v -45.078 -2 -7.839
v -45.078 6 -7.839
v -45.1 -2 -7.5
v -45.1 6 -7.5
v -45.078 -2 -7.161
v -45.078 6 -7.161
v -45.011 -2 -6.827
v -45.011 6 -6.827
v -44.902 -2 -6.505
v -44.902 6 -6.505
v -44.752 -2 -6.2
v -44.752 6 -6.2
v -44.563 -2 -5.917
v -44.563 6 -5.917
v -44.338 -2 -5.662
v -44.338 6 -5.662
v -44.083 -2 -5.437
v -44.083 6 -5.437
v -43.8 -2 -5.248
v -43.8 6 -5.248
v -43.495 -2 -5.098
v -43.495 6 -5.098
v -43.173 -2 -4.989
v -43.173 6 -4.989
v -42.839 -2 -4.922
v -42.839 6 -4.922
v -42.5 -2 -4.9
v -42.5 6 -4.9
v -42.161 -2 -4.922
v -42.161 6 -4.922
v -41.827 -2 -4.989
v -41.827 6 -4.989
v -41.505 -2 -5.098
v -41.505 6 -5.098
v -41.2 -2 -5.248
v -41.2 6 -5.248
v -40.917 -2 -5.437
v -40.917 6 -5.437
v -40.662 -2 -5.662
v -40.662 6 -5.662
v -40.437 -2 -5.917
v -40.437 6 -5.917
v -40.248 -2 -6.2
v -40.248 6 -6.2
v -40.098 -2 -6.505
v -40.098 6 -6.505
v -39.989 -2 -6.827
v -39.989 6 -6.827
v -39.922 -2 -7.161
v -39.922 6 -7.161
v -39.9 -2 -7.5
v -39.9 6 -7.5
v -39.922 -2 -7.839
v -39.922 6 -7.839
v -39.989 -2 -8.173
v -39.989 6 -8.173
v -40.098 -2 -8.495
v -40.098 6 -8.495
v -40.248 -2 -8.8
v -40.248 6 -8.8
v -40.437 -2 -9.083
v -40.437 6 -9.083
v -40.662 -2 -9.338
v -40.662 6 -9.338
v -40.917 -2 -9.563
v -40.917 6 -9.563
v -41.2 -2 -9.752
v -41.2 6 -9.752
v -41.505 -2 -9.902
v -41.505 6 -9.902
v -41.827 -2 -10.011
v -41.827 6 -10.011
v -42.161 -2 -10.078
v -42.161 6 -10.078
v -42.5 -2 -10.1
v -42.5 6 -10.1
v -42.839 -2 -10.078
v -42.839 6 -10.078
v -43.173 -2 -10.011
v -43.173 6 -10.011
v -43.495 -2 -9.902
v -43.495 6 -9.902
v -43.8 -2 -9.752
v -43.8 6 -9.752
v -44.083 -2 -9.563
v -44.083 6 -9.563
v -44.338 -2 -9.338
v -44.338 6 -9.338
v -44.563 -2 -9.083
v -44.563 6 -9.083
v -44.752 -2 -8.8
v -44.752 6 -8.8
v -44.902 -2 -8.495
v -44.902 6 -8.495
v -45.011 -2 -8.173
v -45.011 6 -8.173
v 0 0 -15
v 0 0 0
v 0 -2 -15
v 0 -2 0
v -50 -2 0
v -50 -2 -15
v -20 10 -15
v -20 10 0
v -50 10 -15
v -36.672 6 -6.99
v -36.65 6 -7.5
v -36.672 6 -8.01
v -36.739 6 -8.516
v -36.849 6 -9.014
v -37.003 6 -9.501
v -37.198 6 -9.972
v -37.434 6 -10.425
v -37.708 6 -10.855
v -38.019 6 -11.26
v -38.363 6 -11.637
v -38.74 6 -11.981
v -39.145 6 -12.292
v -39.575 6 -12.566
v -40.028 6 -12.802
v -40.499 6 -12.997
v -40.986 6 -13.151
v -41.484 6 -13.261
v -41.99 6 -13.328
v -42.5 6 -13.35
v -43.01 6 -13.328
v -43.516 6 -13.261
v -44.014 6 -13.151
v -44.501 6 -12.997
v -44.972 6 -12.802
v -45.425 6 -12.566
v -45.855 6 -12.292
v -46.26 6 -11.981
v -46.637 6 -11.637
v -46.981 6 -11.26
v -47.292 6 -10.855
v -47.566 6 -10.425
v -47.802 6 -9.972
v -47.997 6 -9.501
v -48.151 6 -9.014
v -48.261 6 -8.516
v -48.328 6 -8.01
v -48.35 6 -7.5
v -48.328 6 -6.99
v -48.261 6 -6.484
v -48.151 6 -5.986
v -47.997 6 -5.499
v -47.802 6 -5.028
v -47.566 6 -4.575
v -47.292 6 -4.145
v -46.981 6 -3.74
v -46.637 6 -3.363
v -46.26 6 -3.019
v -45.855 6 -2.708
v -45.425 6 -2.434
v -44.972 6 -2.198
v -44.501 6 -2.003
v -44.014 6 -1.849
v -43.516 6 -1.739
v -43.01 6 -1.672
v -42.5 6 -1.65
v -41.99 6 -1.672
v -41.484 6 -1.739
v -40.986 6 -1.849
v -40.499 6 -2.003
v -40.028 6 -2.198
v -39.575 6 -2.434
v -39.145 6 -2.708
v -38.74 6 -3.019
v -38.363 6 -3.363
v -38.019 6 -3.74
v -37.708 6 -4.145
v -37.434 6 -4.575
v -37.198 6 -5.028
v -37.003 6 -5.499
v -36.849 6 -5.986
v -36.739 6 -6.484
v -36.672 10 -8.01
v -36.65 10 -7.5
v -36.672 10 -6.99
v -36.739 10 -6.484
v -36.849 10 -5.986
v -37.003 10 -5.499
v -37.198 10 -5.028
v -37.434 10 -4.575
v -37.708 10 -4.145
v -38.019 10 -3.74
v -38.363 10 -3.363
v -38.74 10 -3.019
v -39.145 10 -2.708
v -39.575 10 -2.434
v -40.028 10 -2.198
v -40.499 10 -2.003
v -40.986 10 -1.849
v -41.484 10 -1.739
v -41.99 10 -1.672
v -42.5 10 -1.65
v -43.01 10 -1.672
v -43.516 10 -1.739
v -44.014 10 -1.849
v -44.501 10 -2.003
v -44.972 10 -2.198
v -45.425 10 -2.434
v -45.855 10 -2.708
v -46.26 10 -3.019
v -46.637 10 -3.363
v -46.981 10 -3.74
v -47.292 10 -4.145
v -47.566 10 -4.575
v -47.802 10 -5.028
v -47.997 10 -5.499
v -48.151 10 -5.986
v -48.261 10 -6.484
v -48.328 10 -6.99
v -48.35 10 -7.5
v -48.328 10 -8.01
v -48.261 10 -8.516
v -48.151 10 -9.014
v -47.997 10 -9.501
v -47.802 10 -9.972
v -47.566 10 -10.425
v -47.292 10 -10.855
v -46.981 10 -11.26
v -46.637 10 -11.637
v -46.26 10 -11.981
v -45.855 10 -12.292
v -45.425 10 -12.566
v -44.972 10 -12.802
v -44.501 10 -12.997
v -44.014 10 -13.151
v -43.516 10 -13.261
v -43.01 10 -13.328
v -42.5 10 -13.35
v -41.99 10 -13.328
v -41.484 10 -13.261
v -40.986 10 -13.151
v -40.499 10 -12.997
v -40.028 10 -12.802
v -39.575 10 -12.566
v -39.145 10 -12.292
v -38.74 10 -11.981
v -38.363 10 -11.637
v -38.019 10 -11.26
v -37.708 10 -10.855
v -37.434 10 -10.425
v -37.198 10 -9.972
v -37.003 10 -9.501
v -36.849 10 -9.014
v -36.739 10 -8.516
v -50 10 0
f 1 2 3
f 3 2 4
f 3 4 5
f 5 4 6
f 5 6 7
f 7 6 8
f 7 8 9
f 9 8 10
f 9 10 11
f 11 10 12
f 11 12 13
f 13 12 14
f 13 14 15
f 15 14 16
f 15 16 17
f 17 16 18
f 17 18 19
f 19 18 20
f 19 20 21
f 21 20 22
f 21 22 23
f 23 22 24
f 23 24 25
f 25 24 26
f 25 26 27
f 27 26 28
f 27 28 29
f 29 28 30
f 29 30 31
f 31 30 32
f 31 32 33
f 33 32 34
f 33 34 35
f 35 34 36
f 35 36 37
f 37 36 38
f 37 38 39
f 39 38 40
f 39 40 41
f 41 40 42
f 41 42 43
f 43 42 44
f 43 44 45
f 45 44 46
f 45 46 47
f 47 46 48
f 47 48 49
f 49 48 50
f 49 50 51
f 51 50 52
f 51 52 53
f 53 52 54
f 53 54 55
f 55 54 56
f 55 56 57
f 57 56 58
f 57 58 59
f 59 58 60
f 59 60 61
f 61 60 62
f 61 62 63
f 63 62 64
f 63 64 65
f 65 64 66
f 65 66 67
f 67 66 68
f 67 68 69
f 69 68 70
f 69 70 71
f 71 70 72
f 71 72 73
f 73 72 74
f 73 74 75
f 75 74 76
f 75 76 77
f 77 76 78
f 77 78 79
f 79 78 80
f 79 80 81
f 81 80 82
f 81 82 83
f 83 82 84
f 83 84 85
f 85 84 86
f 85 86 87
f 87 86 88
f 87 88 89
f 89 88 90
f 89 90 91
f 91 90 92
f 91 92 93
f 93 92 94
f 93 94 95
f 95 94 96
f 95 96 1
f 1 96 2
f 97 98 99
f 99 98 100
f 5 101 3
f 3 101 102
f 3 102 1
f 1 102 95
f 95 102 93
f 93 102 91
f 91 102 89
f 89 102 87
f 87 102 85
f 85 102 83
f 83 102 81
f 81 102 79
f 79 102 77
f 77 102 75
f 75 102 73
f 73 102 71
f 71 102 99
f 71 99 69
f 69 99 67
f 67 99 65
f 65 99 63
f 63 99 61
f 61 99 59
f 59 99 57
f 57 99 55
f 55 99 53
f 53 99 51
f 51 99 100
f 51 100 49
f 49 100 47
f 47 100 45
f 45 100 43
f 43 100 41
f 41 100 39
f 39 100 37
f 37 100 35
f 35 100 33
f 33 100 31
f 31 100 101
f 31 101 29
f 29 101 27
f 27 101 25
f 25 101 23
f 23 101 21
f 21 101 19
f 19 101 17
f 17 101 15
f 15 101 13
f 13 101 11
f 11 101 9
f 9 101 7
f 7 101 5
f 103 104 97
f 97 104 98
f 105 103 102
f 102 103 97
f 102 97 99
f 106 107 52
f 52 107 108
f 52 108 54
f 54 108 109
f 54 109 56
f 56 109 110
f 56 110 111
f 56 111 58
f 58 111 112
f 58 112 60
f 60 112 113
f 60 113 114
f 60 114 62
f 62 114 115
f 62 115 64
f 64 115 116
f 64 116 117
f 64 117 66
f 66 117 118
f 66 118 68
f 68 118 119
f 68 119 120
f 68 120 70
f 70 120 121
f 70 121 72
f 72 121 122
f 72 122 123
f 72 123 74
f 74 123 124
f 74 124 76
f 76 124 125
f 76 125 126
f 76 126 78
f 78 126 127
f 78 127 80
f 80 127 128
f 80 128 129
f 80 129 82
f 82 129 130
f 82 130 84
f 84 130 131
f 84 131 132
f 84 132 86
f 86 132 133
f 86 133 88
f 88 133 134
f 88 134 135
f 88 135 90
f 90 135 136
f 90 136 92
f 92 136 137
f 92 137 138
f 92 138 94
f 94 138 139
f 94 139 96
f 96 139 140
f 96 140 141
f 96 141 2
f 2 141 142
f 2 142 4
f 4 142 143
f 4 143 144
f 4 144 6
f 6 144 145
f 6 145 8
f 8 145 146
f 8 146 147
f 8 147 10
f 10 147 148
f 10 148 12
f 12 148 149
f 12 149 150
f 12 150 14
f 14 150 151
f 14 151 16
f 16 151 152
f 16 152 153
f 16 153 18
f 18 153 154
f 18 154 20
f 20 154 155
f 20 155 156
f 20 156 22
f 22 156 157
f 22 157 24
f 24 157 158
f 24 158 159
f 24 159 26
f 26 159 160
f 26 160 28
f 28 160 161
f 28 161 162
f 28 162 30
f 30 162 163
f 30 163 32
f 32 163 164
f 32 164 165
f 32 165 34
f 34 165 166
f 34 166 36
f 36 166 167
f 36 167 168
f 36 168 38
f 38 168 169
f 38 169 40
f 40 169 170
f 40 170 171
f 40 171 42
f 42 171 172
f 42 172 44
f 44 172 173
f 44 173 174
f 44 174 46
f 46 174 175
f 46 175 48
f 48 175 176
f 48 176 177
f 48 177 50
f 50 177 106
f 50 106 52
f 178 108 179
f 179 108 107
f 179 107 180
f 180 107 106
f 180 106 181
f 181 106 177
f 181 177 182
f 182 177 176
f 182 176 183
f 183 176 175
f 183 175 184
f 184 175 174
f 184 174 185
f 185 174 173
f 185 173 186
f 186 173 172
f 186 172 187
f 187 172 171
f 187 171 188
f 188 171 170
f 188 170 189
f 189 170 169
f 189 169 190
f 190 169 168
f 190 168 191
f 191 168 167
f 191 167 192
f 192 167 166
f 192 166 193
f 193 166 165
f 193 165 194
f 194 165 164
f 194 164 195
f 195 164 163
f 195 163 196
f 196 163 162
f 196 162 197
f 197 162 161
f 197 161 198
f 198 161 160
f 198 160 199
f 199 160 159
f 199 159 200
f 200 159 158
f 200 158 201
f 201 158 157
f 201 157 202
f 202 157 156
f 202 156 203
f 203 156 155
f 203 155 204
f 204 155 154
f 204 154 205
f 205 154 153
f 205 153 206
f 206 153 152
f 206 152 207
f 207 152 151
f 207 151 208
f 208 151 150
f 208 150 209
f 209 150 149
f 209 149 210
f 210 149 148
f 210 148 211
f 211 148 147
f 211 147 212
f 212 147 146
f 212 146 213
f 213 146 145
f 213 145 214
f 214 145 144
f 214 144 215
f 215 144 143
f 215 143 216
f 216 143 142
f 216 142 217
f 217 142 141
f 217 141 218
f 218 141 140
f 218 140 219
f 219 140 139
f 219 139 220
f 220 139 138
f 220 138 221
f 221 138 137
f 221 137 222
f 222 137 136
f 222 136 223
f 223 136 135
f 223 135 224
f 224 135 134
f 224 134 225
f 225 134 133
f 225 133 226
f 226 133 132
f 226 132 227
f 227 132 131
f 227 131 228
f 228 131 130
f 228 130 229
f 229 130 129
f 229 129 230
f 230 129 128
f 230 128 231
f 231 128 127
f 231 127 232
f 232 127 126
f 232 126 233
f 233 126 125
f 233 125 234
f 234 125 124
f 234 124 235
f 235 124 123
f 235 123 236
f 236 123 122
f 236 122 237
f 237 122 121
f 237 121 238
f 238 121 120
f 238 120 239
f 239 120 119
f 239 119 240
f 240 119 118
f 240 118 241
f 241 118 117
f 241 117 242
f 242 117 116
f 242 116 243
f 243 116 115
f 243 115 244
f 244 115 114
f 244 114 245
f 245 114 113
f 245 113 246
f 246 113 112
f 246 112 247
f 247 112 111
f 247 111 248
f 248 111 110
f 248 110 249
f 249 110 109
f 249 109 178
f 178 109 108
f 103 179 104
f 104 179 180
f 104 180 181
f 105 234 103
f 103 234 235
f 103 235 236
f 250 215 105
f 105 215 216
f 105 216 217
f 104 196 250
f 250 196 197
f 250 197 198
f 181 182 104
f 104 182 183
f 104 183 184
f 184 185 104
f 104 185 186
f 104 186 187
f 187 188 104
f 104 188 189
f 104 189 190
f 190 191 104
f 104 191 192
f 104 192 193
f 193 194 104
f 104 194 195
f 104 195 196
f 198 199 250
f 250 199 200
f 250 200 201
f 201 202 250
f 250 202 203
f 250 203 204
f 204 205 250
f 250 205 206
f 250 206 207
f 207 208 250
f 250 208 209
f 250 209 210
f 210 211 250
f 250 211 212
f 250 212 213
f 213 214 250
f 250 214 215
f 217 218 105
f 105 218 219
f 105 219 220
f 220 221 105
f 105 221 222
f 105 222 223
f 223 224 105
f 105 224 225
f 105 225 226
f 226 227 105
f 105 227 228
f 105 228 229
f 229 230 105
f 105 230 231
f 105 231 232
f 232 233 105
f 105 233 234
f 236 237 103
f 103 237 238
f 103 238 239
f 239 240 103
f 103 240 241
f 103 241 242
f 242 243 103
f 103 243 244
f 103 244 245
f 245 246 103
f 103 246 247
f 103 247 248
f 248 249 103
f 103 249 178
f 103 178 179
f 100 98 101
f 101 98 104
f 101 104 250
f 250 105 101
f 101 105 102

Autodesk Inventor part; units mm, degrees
ref_plane "YZ Plane" through (0, 0, 0) normal (1, 0, 0) x (0, 1, 0)
ref_plane "XZ Plane" through (0, 0, 0) normal (0, 1, 0) x (-1, 0, 0)
ref_plane "XY Plane" through (0, 0, 0) normal (0, 0, 1) x (1, 0, 0)
sketch "Boceto1" plane through (0, 0, 0) normal (0, 1, 0) x (-1, 0, 0)
  line L0 (0, 0) -> (50, 0)
  line L1 (50, 0) -> (50, -15)
  line L2 (50, -15) -> (0, -15)
  line L3 (0, -15) -> (0, 0)
  dimension "d0" = 50
  dimension "d1" = 15
extrude "Extrusión1" add sketch "Boceto1" along normal blind 10
sketch "Boceto2" plane through (0, 10, 0) normal (0, 1, 0) x (1, 0, 0)
  line L0 (-50, 15) -> (-50, 0) projected
  line L1 (-50, 0) -> (0, 0) projected
  point P0 (-42.5, 7.5)
  dimension "d4" = 7.5
  dimension "d12" = 7.5
hole "Agujero1" at (-42.5, 10, -7.5) direction (0, -1, 0) diameter 5.2 end through all counterbore diameter 11.7 counterbore depth 4
sketch "Boceto3" plane through (0, 0, 0) normal (1, 0, 0) x (0, 0, -1)
  point P0 (0, 0)
chamfer "Chaflán1" distance 20 distance2 10 1 edges at (0, 10, -7.5) measured on face at (-12.2309, 10, -7.265)
sketch "Boceto4" plane through (0, 0, 0) normal (0, -1, 0) x (1, 0, 0)
  line L0 (0, -15) -> (-50, -15) projected
  line L1 (0, -15) -> (-50, -15)
  line L2 (-50, -15) -> (-50, 0)
  line L3 (-50, 0) -> (0, 0)
  line L4 (0, 0) -> (0, -15)
extrude "Extrusión2" add sketch "Boceto4" along normal blind 2
sketch "Boceto5" plane through (-42.5, 0, -7.5) normal (0, 1, 0) x (1, 0, 0)
  circle A0 centre (0, 0) radius 2.6 projected
  point P0 (42.5, -7.5)
hole "Agujero2" at (-42.5, 0, -7.5) direction (0, -1, 0) diameter 5.2 end through all
properties part number "cuña 5cm"
